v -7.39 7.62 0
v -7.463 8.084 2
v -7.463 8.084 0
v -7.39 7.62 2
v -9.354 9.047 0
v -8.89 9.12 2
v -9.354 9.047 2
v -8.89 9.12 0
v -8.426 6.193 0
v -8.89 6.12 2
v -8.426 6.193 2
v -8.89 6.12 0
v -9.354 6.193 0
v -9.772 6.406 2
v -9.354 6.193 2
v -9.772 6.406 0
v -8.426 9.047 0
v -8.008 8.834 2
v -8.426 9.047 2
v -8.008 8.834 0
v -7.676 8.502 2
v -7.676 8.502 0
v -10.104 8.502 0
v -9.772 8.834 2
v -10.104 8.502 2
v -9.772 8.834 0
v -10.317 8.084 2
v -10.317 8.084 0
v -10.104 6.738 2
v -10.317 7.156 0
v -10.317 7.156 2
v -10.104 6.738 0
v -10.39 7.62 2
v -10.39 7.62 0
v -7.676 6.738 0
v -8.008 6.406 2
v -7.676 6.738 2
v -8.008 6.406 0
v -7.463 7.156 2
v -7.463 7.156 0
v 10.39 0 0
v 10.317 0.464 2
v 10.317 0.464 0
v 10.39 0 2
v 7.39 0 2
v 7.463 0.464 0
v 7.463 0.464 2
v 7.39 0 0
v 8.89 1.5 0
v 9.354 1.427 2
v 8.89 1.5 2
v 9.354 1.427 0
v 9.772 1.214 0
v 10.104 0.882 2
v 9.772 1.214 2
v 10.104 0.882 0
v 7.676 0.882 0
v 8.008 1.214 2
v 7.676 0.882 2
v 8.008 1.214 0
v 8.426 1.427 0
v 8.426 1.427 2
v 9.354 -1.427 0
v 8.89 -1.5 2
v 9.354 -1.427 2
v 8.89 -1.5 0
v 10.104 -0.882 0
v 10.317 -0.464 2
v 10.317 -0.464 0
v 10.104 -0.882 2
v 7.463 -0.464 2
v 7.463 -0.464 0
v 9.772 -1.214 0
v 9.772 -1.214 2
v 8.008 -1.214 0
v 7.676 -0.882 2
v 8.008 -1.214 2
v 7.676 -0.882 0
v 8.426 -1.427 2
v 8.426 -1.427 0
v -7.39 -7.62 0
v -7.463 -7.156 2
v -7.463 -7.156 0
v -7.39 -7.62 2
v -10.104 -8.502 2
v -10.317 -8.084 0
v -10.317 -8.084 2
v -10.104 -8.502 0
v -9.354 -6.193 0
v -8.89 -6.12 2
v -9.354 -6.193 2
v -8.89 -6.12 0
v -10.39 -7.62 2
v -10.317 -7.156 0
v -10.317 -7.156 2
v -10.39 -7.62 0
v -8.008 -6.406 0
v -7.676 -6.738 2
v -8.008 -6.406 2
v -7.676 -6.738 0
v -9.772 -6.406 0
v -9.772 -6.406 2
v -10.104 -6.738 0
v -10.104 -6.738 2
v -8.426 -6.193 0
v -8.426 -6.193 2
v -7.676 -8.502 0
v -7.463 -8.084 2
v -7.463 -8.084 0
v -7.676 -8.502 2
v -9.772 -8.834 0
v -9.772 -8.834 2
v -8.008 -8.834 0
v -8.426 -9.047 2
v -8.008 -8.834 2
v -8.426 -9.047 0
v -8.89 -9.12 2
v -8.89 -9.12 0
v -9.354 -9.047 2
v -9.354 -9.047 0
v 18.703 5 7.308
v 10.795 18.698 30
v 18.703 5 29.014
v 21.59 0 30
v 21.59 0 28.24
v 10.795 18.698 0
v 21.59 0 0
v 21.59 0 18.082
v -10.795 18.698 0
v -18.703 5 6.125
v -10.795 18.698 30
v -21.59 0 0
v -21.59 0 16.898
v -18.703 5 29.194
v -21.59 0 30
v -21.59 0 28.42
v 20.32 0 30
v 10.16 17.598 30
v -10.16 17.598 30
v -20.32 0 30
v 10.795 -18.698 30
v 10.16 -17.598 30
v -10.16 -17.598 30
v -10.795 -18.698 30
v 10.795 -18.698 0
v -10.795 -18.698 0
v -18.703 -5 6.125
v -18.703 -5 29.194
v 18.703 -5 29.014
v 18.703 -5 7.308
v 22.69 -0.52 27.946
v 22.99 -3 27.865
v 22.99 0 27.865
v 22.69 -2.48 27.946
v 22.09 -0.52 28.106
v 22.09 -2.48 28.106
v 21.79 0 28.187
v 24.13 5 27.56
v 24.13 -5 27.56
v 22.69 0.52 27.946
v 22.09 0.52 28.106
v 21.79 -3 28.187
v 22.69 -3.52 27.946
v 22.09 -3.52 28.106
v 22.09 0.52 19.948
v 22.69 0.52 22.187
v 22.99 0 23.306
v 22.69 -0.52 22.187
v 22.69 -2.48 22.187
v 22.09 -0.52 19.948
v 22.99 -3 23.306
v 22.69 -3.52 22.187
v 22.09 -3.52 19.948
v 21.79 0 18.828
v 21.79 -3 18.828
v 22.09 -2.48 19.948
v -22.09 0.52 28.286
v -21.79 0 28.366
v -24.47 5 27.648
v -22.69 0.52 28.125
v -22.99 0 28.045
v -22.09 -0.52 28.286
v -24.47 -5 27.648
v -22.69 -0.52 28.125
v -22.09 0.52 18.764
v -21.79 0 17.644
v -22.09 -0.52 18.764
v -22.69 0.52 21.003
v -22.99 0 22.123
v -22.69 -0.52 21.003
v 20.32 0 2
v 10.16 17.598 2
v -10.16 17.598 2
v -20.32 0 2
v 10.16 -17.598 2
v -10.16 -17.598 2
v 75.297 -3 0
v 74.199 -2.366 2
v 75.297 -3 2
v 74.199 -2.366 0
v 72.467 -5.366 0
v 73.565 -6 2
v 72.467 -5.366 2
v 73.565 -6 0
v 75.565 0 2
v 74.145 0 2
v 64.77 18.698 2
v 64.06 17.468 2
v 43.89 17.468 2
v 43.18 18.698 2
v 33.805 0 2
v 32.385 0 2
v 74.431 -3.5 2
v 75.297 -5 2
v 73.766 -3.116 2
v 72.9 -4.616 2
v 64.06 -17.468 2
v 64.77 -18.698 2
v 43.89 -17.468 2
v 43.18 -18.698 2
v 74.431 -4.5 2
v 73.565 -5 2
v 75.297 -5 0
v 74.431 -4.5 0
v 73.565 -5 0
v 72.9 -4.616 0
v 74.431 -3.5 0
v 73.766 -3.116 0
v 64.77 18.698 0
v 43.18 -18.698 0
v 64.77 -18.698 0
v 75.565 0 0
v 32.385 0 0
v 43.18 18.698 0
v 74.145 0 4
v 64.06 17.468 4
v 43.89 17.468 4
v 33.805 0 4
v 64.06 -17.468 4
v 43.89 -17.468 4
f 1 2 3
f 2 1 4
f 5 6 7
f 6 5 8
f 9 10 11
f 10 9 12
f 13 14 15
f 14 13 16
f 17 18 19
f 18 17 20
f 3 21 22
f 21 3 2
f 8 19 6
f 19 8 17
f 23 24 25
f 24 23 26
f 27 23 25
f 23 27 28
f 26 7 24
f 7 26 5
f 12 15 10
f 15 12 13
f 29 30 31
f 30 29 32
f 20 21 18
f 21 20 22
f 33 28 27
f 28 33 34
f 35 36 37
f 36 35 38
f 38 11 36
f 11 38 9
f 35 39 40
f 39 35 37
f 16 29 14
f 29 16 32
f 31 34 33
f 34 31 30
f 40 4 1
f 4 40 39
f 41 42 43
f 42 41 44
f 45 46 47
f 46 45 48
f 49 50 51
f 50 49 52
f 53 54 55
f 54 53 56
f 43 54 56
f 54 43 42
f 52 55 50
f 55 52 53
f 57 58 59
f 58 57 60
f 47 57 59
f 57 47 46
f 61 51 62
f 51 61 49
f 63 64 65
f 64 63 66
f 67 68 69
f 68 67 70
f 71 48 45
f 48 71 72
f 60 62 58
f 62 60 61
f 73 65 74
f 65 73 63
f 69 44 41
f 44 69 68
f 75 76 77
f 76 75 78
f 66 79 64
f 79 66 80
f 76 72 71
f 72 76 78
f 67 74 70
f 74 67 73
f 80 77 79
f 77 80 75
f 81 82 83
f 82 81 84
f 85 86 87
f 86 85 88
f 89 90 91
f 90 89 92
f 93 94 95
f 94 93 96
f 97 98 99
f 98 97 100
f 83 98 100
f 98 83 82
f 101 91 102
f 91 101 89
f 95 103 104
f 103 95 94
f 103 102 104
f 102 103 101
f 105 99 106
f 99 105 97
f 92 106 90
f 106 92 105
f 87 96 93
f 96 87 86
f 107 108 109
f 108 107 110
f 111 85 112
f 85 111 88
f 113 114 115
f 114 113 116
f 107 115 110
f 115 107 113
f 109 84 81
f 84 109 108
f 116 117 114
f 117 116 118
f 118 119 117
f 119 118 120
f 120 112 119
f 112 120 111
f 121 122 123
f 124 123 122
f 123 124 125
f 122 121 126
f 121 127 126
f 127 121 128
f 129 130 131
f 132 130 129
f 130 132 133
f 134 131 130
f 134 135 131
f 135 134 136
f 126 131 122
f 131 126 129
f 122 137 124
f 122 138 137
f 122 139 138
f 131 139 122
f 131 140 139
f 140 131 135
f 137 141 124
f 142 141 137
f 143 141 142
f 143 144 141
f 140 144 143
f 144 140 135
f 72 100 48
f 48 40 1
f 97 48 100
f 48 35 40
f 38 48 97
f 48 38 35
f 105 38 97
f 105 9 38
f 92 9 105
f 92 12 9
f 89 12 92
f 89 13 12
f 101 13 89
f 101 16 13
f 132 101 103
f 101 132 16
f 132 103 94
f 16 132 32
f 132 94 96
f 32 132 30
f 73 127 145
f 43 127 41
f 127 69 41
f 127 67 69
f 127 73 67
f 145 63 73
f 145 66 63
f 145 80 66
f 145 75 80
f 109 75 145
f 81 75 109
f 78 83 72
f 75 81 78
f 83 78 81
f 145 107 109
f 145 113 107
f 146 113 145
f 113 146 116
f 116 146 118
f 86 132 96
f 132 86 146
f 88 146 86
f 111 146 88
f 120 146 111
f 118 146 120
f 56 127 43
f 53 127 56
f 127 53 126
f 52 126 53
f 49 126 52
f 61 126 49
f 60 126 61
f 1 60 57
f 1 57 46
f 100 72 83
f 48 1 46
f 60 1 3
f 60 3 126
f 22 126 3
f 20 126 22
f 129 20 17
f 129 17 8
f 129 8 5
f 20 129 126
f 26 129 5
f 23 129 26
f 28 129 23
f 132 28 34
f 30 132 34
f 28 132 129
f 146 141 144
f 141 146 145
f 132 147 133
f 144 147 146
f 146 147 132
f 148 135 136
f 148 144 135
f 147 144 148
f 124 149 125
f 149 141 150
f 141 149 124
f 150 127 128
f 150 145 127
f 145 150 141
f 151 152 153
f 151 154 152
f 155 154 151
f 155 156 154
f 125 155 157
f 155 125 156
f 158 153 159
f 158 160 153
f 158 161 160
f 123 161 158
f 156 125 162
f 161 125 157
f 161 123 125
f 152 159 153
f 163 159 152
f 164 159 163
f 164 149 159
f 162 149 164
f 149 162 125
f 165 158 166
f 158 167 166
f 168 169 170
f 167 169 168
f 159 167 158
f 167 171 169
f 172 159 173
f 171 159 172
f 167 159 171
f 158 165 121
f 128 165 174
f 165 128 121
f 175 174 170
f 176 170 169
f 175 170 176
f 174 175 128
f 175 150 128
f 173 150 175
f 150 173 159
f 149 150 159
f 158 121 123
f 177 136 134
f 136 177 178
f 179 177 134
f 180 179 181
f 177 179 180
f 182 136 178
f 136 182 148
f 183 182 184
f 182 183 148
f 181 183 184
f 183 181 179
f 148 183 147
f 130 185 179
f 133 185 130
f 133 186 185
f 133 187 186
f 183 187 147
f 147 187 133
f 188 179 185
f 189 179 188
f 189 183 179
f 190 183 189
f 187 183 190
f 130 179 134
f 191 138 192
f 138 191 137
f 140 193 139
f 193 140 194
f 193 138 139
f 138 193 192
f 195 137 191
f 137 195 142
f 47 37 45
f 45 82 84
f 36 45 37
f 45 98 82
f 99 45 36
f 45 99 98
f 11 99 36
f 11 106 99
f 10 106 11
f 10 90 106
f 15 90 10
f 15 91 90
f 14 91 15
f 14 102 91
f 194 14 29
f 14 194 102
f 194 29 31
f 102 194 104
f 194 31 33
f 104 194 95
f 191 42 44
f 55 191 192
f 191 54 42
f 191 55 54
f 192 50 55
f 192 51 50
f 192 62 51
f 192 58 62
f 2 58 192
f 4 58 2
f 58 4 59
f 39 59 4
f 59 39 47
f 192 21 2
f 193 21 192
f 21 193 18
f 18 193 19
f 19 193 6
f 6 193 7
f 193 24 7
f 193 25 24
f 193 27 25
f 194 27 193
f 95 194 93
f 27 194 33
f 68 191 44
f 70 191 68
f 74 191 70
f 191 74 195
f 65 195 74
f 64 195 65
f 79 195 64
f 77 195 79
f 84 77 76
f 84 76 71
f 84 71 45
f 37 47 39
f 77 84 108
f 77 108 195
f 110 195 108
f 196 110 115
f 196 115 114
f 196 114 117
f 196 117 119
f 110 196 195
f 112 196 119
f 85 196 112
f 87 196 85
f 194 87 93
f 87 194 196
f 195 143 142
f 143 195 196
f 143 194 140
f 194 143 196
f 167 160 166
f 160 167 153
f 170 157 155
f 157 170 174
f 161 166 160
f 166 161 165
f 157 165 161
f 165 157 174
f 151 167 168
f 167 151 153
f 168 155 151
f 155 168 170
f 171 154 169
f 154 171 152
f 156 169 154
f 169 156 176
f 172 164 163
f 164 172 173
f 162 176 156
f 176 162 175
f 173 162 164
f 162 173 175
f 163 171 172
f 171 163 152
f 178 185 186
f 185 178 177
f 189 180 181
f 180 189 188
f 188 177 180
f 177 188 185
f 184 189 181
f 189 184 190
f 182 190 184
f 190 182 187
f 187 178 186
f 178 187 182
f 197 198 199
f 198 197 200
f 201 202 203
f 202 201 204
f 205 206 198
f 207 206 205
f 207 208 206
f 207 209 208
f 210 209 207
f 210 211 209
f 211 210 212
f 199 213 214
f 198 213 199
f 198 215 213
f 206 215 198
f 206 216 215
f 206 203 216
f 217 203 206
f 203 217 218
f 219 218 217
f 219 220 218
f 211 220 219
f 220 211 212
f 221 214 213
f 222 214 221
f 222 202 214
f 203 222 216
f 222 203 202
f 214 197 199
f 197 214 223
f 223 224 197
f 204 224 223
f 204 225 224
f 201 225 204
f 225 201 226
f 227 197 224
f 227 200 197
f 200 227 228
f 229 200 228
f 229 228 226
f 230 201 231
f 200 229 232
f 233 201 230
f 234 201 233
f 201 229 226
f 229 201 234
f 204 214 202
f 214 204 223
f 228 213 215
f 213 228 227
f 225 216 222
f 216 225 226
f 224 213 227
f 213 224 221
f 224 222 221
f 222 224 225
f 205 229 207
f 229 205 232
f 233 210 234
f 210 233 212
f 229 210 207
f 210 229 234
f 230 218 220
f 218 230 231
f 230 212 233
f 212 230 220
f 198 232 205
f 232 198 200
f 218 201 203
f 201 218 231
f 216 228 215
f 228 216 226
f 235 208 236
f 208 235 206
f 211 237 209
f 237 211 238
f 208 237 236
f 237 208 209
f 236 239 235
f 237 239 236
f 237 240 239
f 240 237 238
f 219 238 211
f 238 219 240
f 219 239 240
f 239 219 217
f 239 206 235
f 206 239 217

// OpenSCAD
//radio exterior
rE = 17*2.54/2;
//espesor da base
eB = 2;
//radio do recorte dos furados
rR = 6;
//altura do depósito
hTotal=30;

caixa();
translate([rE*2.5,0,0]) tapa();

module tapa(){
cylinder(r=rE,h=eB,$fn=6);
cylinder(r=rE-2.84/2,h=eB*2,$fn=6); //reborde da tapa máis pequeno que o oco para que encaixe
//saínte para enganchar o fío de suxección
difference(){
translate([rE-2,-4,0]) rotate([0,0,30]) cylinder(r=2,h=eB,$fn=6);
translate([rE-2,-4,-1]) rotate([0,0,30]) cylinder(r=1,h=eB+4,$fn=6);
}
}


module caixa(){
difference(){
//base e borde
union(){
//exterior
cylinder(r=rE,h=hTotal,$fn=6);
//asas
translate([8,-5,hTotal/5])rotate([0,15,0])  cube([10,10,25]);
translate([-18,-5,hTotal/5-2.5])  rotate([0,345,0])cube([10,10,25]);
    }
//hexagono interior
translate([0,0,2])cylinder(r=rE-2.54/2,h=hTotal+10,$fn=6);
//furados das orellas
translate([rE+0.8,0,0]) cylinder(r=0.6,h=hTotal+10,$fn=6);
translate([rE+0.8,-3,0]) cylinder(r=0.6,h=hTotal+10,$fn=6);
translate([-rE-0.8,0,0]) cylinder(r=0.6,h=hTotal+10,$fn=6);

furados();
}
}
module furados(){
translate([-3.5*2.54,3*2.54,-1]) cylinder (r=1.5,h=5,$fn=20);
translate([3.5*2.54,0,-1]) cylinder (r=1.5,h=5,$fn=20);
translate([-3.5*2.54,-3*2.54,-1]) cylinder (r=1.5,h=5,$fn=20);
}
